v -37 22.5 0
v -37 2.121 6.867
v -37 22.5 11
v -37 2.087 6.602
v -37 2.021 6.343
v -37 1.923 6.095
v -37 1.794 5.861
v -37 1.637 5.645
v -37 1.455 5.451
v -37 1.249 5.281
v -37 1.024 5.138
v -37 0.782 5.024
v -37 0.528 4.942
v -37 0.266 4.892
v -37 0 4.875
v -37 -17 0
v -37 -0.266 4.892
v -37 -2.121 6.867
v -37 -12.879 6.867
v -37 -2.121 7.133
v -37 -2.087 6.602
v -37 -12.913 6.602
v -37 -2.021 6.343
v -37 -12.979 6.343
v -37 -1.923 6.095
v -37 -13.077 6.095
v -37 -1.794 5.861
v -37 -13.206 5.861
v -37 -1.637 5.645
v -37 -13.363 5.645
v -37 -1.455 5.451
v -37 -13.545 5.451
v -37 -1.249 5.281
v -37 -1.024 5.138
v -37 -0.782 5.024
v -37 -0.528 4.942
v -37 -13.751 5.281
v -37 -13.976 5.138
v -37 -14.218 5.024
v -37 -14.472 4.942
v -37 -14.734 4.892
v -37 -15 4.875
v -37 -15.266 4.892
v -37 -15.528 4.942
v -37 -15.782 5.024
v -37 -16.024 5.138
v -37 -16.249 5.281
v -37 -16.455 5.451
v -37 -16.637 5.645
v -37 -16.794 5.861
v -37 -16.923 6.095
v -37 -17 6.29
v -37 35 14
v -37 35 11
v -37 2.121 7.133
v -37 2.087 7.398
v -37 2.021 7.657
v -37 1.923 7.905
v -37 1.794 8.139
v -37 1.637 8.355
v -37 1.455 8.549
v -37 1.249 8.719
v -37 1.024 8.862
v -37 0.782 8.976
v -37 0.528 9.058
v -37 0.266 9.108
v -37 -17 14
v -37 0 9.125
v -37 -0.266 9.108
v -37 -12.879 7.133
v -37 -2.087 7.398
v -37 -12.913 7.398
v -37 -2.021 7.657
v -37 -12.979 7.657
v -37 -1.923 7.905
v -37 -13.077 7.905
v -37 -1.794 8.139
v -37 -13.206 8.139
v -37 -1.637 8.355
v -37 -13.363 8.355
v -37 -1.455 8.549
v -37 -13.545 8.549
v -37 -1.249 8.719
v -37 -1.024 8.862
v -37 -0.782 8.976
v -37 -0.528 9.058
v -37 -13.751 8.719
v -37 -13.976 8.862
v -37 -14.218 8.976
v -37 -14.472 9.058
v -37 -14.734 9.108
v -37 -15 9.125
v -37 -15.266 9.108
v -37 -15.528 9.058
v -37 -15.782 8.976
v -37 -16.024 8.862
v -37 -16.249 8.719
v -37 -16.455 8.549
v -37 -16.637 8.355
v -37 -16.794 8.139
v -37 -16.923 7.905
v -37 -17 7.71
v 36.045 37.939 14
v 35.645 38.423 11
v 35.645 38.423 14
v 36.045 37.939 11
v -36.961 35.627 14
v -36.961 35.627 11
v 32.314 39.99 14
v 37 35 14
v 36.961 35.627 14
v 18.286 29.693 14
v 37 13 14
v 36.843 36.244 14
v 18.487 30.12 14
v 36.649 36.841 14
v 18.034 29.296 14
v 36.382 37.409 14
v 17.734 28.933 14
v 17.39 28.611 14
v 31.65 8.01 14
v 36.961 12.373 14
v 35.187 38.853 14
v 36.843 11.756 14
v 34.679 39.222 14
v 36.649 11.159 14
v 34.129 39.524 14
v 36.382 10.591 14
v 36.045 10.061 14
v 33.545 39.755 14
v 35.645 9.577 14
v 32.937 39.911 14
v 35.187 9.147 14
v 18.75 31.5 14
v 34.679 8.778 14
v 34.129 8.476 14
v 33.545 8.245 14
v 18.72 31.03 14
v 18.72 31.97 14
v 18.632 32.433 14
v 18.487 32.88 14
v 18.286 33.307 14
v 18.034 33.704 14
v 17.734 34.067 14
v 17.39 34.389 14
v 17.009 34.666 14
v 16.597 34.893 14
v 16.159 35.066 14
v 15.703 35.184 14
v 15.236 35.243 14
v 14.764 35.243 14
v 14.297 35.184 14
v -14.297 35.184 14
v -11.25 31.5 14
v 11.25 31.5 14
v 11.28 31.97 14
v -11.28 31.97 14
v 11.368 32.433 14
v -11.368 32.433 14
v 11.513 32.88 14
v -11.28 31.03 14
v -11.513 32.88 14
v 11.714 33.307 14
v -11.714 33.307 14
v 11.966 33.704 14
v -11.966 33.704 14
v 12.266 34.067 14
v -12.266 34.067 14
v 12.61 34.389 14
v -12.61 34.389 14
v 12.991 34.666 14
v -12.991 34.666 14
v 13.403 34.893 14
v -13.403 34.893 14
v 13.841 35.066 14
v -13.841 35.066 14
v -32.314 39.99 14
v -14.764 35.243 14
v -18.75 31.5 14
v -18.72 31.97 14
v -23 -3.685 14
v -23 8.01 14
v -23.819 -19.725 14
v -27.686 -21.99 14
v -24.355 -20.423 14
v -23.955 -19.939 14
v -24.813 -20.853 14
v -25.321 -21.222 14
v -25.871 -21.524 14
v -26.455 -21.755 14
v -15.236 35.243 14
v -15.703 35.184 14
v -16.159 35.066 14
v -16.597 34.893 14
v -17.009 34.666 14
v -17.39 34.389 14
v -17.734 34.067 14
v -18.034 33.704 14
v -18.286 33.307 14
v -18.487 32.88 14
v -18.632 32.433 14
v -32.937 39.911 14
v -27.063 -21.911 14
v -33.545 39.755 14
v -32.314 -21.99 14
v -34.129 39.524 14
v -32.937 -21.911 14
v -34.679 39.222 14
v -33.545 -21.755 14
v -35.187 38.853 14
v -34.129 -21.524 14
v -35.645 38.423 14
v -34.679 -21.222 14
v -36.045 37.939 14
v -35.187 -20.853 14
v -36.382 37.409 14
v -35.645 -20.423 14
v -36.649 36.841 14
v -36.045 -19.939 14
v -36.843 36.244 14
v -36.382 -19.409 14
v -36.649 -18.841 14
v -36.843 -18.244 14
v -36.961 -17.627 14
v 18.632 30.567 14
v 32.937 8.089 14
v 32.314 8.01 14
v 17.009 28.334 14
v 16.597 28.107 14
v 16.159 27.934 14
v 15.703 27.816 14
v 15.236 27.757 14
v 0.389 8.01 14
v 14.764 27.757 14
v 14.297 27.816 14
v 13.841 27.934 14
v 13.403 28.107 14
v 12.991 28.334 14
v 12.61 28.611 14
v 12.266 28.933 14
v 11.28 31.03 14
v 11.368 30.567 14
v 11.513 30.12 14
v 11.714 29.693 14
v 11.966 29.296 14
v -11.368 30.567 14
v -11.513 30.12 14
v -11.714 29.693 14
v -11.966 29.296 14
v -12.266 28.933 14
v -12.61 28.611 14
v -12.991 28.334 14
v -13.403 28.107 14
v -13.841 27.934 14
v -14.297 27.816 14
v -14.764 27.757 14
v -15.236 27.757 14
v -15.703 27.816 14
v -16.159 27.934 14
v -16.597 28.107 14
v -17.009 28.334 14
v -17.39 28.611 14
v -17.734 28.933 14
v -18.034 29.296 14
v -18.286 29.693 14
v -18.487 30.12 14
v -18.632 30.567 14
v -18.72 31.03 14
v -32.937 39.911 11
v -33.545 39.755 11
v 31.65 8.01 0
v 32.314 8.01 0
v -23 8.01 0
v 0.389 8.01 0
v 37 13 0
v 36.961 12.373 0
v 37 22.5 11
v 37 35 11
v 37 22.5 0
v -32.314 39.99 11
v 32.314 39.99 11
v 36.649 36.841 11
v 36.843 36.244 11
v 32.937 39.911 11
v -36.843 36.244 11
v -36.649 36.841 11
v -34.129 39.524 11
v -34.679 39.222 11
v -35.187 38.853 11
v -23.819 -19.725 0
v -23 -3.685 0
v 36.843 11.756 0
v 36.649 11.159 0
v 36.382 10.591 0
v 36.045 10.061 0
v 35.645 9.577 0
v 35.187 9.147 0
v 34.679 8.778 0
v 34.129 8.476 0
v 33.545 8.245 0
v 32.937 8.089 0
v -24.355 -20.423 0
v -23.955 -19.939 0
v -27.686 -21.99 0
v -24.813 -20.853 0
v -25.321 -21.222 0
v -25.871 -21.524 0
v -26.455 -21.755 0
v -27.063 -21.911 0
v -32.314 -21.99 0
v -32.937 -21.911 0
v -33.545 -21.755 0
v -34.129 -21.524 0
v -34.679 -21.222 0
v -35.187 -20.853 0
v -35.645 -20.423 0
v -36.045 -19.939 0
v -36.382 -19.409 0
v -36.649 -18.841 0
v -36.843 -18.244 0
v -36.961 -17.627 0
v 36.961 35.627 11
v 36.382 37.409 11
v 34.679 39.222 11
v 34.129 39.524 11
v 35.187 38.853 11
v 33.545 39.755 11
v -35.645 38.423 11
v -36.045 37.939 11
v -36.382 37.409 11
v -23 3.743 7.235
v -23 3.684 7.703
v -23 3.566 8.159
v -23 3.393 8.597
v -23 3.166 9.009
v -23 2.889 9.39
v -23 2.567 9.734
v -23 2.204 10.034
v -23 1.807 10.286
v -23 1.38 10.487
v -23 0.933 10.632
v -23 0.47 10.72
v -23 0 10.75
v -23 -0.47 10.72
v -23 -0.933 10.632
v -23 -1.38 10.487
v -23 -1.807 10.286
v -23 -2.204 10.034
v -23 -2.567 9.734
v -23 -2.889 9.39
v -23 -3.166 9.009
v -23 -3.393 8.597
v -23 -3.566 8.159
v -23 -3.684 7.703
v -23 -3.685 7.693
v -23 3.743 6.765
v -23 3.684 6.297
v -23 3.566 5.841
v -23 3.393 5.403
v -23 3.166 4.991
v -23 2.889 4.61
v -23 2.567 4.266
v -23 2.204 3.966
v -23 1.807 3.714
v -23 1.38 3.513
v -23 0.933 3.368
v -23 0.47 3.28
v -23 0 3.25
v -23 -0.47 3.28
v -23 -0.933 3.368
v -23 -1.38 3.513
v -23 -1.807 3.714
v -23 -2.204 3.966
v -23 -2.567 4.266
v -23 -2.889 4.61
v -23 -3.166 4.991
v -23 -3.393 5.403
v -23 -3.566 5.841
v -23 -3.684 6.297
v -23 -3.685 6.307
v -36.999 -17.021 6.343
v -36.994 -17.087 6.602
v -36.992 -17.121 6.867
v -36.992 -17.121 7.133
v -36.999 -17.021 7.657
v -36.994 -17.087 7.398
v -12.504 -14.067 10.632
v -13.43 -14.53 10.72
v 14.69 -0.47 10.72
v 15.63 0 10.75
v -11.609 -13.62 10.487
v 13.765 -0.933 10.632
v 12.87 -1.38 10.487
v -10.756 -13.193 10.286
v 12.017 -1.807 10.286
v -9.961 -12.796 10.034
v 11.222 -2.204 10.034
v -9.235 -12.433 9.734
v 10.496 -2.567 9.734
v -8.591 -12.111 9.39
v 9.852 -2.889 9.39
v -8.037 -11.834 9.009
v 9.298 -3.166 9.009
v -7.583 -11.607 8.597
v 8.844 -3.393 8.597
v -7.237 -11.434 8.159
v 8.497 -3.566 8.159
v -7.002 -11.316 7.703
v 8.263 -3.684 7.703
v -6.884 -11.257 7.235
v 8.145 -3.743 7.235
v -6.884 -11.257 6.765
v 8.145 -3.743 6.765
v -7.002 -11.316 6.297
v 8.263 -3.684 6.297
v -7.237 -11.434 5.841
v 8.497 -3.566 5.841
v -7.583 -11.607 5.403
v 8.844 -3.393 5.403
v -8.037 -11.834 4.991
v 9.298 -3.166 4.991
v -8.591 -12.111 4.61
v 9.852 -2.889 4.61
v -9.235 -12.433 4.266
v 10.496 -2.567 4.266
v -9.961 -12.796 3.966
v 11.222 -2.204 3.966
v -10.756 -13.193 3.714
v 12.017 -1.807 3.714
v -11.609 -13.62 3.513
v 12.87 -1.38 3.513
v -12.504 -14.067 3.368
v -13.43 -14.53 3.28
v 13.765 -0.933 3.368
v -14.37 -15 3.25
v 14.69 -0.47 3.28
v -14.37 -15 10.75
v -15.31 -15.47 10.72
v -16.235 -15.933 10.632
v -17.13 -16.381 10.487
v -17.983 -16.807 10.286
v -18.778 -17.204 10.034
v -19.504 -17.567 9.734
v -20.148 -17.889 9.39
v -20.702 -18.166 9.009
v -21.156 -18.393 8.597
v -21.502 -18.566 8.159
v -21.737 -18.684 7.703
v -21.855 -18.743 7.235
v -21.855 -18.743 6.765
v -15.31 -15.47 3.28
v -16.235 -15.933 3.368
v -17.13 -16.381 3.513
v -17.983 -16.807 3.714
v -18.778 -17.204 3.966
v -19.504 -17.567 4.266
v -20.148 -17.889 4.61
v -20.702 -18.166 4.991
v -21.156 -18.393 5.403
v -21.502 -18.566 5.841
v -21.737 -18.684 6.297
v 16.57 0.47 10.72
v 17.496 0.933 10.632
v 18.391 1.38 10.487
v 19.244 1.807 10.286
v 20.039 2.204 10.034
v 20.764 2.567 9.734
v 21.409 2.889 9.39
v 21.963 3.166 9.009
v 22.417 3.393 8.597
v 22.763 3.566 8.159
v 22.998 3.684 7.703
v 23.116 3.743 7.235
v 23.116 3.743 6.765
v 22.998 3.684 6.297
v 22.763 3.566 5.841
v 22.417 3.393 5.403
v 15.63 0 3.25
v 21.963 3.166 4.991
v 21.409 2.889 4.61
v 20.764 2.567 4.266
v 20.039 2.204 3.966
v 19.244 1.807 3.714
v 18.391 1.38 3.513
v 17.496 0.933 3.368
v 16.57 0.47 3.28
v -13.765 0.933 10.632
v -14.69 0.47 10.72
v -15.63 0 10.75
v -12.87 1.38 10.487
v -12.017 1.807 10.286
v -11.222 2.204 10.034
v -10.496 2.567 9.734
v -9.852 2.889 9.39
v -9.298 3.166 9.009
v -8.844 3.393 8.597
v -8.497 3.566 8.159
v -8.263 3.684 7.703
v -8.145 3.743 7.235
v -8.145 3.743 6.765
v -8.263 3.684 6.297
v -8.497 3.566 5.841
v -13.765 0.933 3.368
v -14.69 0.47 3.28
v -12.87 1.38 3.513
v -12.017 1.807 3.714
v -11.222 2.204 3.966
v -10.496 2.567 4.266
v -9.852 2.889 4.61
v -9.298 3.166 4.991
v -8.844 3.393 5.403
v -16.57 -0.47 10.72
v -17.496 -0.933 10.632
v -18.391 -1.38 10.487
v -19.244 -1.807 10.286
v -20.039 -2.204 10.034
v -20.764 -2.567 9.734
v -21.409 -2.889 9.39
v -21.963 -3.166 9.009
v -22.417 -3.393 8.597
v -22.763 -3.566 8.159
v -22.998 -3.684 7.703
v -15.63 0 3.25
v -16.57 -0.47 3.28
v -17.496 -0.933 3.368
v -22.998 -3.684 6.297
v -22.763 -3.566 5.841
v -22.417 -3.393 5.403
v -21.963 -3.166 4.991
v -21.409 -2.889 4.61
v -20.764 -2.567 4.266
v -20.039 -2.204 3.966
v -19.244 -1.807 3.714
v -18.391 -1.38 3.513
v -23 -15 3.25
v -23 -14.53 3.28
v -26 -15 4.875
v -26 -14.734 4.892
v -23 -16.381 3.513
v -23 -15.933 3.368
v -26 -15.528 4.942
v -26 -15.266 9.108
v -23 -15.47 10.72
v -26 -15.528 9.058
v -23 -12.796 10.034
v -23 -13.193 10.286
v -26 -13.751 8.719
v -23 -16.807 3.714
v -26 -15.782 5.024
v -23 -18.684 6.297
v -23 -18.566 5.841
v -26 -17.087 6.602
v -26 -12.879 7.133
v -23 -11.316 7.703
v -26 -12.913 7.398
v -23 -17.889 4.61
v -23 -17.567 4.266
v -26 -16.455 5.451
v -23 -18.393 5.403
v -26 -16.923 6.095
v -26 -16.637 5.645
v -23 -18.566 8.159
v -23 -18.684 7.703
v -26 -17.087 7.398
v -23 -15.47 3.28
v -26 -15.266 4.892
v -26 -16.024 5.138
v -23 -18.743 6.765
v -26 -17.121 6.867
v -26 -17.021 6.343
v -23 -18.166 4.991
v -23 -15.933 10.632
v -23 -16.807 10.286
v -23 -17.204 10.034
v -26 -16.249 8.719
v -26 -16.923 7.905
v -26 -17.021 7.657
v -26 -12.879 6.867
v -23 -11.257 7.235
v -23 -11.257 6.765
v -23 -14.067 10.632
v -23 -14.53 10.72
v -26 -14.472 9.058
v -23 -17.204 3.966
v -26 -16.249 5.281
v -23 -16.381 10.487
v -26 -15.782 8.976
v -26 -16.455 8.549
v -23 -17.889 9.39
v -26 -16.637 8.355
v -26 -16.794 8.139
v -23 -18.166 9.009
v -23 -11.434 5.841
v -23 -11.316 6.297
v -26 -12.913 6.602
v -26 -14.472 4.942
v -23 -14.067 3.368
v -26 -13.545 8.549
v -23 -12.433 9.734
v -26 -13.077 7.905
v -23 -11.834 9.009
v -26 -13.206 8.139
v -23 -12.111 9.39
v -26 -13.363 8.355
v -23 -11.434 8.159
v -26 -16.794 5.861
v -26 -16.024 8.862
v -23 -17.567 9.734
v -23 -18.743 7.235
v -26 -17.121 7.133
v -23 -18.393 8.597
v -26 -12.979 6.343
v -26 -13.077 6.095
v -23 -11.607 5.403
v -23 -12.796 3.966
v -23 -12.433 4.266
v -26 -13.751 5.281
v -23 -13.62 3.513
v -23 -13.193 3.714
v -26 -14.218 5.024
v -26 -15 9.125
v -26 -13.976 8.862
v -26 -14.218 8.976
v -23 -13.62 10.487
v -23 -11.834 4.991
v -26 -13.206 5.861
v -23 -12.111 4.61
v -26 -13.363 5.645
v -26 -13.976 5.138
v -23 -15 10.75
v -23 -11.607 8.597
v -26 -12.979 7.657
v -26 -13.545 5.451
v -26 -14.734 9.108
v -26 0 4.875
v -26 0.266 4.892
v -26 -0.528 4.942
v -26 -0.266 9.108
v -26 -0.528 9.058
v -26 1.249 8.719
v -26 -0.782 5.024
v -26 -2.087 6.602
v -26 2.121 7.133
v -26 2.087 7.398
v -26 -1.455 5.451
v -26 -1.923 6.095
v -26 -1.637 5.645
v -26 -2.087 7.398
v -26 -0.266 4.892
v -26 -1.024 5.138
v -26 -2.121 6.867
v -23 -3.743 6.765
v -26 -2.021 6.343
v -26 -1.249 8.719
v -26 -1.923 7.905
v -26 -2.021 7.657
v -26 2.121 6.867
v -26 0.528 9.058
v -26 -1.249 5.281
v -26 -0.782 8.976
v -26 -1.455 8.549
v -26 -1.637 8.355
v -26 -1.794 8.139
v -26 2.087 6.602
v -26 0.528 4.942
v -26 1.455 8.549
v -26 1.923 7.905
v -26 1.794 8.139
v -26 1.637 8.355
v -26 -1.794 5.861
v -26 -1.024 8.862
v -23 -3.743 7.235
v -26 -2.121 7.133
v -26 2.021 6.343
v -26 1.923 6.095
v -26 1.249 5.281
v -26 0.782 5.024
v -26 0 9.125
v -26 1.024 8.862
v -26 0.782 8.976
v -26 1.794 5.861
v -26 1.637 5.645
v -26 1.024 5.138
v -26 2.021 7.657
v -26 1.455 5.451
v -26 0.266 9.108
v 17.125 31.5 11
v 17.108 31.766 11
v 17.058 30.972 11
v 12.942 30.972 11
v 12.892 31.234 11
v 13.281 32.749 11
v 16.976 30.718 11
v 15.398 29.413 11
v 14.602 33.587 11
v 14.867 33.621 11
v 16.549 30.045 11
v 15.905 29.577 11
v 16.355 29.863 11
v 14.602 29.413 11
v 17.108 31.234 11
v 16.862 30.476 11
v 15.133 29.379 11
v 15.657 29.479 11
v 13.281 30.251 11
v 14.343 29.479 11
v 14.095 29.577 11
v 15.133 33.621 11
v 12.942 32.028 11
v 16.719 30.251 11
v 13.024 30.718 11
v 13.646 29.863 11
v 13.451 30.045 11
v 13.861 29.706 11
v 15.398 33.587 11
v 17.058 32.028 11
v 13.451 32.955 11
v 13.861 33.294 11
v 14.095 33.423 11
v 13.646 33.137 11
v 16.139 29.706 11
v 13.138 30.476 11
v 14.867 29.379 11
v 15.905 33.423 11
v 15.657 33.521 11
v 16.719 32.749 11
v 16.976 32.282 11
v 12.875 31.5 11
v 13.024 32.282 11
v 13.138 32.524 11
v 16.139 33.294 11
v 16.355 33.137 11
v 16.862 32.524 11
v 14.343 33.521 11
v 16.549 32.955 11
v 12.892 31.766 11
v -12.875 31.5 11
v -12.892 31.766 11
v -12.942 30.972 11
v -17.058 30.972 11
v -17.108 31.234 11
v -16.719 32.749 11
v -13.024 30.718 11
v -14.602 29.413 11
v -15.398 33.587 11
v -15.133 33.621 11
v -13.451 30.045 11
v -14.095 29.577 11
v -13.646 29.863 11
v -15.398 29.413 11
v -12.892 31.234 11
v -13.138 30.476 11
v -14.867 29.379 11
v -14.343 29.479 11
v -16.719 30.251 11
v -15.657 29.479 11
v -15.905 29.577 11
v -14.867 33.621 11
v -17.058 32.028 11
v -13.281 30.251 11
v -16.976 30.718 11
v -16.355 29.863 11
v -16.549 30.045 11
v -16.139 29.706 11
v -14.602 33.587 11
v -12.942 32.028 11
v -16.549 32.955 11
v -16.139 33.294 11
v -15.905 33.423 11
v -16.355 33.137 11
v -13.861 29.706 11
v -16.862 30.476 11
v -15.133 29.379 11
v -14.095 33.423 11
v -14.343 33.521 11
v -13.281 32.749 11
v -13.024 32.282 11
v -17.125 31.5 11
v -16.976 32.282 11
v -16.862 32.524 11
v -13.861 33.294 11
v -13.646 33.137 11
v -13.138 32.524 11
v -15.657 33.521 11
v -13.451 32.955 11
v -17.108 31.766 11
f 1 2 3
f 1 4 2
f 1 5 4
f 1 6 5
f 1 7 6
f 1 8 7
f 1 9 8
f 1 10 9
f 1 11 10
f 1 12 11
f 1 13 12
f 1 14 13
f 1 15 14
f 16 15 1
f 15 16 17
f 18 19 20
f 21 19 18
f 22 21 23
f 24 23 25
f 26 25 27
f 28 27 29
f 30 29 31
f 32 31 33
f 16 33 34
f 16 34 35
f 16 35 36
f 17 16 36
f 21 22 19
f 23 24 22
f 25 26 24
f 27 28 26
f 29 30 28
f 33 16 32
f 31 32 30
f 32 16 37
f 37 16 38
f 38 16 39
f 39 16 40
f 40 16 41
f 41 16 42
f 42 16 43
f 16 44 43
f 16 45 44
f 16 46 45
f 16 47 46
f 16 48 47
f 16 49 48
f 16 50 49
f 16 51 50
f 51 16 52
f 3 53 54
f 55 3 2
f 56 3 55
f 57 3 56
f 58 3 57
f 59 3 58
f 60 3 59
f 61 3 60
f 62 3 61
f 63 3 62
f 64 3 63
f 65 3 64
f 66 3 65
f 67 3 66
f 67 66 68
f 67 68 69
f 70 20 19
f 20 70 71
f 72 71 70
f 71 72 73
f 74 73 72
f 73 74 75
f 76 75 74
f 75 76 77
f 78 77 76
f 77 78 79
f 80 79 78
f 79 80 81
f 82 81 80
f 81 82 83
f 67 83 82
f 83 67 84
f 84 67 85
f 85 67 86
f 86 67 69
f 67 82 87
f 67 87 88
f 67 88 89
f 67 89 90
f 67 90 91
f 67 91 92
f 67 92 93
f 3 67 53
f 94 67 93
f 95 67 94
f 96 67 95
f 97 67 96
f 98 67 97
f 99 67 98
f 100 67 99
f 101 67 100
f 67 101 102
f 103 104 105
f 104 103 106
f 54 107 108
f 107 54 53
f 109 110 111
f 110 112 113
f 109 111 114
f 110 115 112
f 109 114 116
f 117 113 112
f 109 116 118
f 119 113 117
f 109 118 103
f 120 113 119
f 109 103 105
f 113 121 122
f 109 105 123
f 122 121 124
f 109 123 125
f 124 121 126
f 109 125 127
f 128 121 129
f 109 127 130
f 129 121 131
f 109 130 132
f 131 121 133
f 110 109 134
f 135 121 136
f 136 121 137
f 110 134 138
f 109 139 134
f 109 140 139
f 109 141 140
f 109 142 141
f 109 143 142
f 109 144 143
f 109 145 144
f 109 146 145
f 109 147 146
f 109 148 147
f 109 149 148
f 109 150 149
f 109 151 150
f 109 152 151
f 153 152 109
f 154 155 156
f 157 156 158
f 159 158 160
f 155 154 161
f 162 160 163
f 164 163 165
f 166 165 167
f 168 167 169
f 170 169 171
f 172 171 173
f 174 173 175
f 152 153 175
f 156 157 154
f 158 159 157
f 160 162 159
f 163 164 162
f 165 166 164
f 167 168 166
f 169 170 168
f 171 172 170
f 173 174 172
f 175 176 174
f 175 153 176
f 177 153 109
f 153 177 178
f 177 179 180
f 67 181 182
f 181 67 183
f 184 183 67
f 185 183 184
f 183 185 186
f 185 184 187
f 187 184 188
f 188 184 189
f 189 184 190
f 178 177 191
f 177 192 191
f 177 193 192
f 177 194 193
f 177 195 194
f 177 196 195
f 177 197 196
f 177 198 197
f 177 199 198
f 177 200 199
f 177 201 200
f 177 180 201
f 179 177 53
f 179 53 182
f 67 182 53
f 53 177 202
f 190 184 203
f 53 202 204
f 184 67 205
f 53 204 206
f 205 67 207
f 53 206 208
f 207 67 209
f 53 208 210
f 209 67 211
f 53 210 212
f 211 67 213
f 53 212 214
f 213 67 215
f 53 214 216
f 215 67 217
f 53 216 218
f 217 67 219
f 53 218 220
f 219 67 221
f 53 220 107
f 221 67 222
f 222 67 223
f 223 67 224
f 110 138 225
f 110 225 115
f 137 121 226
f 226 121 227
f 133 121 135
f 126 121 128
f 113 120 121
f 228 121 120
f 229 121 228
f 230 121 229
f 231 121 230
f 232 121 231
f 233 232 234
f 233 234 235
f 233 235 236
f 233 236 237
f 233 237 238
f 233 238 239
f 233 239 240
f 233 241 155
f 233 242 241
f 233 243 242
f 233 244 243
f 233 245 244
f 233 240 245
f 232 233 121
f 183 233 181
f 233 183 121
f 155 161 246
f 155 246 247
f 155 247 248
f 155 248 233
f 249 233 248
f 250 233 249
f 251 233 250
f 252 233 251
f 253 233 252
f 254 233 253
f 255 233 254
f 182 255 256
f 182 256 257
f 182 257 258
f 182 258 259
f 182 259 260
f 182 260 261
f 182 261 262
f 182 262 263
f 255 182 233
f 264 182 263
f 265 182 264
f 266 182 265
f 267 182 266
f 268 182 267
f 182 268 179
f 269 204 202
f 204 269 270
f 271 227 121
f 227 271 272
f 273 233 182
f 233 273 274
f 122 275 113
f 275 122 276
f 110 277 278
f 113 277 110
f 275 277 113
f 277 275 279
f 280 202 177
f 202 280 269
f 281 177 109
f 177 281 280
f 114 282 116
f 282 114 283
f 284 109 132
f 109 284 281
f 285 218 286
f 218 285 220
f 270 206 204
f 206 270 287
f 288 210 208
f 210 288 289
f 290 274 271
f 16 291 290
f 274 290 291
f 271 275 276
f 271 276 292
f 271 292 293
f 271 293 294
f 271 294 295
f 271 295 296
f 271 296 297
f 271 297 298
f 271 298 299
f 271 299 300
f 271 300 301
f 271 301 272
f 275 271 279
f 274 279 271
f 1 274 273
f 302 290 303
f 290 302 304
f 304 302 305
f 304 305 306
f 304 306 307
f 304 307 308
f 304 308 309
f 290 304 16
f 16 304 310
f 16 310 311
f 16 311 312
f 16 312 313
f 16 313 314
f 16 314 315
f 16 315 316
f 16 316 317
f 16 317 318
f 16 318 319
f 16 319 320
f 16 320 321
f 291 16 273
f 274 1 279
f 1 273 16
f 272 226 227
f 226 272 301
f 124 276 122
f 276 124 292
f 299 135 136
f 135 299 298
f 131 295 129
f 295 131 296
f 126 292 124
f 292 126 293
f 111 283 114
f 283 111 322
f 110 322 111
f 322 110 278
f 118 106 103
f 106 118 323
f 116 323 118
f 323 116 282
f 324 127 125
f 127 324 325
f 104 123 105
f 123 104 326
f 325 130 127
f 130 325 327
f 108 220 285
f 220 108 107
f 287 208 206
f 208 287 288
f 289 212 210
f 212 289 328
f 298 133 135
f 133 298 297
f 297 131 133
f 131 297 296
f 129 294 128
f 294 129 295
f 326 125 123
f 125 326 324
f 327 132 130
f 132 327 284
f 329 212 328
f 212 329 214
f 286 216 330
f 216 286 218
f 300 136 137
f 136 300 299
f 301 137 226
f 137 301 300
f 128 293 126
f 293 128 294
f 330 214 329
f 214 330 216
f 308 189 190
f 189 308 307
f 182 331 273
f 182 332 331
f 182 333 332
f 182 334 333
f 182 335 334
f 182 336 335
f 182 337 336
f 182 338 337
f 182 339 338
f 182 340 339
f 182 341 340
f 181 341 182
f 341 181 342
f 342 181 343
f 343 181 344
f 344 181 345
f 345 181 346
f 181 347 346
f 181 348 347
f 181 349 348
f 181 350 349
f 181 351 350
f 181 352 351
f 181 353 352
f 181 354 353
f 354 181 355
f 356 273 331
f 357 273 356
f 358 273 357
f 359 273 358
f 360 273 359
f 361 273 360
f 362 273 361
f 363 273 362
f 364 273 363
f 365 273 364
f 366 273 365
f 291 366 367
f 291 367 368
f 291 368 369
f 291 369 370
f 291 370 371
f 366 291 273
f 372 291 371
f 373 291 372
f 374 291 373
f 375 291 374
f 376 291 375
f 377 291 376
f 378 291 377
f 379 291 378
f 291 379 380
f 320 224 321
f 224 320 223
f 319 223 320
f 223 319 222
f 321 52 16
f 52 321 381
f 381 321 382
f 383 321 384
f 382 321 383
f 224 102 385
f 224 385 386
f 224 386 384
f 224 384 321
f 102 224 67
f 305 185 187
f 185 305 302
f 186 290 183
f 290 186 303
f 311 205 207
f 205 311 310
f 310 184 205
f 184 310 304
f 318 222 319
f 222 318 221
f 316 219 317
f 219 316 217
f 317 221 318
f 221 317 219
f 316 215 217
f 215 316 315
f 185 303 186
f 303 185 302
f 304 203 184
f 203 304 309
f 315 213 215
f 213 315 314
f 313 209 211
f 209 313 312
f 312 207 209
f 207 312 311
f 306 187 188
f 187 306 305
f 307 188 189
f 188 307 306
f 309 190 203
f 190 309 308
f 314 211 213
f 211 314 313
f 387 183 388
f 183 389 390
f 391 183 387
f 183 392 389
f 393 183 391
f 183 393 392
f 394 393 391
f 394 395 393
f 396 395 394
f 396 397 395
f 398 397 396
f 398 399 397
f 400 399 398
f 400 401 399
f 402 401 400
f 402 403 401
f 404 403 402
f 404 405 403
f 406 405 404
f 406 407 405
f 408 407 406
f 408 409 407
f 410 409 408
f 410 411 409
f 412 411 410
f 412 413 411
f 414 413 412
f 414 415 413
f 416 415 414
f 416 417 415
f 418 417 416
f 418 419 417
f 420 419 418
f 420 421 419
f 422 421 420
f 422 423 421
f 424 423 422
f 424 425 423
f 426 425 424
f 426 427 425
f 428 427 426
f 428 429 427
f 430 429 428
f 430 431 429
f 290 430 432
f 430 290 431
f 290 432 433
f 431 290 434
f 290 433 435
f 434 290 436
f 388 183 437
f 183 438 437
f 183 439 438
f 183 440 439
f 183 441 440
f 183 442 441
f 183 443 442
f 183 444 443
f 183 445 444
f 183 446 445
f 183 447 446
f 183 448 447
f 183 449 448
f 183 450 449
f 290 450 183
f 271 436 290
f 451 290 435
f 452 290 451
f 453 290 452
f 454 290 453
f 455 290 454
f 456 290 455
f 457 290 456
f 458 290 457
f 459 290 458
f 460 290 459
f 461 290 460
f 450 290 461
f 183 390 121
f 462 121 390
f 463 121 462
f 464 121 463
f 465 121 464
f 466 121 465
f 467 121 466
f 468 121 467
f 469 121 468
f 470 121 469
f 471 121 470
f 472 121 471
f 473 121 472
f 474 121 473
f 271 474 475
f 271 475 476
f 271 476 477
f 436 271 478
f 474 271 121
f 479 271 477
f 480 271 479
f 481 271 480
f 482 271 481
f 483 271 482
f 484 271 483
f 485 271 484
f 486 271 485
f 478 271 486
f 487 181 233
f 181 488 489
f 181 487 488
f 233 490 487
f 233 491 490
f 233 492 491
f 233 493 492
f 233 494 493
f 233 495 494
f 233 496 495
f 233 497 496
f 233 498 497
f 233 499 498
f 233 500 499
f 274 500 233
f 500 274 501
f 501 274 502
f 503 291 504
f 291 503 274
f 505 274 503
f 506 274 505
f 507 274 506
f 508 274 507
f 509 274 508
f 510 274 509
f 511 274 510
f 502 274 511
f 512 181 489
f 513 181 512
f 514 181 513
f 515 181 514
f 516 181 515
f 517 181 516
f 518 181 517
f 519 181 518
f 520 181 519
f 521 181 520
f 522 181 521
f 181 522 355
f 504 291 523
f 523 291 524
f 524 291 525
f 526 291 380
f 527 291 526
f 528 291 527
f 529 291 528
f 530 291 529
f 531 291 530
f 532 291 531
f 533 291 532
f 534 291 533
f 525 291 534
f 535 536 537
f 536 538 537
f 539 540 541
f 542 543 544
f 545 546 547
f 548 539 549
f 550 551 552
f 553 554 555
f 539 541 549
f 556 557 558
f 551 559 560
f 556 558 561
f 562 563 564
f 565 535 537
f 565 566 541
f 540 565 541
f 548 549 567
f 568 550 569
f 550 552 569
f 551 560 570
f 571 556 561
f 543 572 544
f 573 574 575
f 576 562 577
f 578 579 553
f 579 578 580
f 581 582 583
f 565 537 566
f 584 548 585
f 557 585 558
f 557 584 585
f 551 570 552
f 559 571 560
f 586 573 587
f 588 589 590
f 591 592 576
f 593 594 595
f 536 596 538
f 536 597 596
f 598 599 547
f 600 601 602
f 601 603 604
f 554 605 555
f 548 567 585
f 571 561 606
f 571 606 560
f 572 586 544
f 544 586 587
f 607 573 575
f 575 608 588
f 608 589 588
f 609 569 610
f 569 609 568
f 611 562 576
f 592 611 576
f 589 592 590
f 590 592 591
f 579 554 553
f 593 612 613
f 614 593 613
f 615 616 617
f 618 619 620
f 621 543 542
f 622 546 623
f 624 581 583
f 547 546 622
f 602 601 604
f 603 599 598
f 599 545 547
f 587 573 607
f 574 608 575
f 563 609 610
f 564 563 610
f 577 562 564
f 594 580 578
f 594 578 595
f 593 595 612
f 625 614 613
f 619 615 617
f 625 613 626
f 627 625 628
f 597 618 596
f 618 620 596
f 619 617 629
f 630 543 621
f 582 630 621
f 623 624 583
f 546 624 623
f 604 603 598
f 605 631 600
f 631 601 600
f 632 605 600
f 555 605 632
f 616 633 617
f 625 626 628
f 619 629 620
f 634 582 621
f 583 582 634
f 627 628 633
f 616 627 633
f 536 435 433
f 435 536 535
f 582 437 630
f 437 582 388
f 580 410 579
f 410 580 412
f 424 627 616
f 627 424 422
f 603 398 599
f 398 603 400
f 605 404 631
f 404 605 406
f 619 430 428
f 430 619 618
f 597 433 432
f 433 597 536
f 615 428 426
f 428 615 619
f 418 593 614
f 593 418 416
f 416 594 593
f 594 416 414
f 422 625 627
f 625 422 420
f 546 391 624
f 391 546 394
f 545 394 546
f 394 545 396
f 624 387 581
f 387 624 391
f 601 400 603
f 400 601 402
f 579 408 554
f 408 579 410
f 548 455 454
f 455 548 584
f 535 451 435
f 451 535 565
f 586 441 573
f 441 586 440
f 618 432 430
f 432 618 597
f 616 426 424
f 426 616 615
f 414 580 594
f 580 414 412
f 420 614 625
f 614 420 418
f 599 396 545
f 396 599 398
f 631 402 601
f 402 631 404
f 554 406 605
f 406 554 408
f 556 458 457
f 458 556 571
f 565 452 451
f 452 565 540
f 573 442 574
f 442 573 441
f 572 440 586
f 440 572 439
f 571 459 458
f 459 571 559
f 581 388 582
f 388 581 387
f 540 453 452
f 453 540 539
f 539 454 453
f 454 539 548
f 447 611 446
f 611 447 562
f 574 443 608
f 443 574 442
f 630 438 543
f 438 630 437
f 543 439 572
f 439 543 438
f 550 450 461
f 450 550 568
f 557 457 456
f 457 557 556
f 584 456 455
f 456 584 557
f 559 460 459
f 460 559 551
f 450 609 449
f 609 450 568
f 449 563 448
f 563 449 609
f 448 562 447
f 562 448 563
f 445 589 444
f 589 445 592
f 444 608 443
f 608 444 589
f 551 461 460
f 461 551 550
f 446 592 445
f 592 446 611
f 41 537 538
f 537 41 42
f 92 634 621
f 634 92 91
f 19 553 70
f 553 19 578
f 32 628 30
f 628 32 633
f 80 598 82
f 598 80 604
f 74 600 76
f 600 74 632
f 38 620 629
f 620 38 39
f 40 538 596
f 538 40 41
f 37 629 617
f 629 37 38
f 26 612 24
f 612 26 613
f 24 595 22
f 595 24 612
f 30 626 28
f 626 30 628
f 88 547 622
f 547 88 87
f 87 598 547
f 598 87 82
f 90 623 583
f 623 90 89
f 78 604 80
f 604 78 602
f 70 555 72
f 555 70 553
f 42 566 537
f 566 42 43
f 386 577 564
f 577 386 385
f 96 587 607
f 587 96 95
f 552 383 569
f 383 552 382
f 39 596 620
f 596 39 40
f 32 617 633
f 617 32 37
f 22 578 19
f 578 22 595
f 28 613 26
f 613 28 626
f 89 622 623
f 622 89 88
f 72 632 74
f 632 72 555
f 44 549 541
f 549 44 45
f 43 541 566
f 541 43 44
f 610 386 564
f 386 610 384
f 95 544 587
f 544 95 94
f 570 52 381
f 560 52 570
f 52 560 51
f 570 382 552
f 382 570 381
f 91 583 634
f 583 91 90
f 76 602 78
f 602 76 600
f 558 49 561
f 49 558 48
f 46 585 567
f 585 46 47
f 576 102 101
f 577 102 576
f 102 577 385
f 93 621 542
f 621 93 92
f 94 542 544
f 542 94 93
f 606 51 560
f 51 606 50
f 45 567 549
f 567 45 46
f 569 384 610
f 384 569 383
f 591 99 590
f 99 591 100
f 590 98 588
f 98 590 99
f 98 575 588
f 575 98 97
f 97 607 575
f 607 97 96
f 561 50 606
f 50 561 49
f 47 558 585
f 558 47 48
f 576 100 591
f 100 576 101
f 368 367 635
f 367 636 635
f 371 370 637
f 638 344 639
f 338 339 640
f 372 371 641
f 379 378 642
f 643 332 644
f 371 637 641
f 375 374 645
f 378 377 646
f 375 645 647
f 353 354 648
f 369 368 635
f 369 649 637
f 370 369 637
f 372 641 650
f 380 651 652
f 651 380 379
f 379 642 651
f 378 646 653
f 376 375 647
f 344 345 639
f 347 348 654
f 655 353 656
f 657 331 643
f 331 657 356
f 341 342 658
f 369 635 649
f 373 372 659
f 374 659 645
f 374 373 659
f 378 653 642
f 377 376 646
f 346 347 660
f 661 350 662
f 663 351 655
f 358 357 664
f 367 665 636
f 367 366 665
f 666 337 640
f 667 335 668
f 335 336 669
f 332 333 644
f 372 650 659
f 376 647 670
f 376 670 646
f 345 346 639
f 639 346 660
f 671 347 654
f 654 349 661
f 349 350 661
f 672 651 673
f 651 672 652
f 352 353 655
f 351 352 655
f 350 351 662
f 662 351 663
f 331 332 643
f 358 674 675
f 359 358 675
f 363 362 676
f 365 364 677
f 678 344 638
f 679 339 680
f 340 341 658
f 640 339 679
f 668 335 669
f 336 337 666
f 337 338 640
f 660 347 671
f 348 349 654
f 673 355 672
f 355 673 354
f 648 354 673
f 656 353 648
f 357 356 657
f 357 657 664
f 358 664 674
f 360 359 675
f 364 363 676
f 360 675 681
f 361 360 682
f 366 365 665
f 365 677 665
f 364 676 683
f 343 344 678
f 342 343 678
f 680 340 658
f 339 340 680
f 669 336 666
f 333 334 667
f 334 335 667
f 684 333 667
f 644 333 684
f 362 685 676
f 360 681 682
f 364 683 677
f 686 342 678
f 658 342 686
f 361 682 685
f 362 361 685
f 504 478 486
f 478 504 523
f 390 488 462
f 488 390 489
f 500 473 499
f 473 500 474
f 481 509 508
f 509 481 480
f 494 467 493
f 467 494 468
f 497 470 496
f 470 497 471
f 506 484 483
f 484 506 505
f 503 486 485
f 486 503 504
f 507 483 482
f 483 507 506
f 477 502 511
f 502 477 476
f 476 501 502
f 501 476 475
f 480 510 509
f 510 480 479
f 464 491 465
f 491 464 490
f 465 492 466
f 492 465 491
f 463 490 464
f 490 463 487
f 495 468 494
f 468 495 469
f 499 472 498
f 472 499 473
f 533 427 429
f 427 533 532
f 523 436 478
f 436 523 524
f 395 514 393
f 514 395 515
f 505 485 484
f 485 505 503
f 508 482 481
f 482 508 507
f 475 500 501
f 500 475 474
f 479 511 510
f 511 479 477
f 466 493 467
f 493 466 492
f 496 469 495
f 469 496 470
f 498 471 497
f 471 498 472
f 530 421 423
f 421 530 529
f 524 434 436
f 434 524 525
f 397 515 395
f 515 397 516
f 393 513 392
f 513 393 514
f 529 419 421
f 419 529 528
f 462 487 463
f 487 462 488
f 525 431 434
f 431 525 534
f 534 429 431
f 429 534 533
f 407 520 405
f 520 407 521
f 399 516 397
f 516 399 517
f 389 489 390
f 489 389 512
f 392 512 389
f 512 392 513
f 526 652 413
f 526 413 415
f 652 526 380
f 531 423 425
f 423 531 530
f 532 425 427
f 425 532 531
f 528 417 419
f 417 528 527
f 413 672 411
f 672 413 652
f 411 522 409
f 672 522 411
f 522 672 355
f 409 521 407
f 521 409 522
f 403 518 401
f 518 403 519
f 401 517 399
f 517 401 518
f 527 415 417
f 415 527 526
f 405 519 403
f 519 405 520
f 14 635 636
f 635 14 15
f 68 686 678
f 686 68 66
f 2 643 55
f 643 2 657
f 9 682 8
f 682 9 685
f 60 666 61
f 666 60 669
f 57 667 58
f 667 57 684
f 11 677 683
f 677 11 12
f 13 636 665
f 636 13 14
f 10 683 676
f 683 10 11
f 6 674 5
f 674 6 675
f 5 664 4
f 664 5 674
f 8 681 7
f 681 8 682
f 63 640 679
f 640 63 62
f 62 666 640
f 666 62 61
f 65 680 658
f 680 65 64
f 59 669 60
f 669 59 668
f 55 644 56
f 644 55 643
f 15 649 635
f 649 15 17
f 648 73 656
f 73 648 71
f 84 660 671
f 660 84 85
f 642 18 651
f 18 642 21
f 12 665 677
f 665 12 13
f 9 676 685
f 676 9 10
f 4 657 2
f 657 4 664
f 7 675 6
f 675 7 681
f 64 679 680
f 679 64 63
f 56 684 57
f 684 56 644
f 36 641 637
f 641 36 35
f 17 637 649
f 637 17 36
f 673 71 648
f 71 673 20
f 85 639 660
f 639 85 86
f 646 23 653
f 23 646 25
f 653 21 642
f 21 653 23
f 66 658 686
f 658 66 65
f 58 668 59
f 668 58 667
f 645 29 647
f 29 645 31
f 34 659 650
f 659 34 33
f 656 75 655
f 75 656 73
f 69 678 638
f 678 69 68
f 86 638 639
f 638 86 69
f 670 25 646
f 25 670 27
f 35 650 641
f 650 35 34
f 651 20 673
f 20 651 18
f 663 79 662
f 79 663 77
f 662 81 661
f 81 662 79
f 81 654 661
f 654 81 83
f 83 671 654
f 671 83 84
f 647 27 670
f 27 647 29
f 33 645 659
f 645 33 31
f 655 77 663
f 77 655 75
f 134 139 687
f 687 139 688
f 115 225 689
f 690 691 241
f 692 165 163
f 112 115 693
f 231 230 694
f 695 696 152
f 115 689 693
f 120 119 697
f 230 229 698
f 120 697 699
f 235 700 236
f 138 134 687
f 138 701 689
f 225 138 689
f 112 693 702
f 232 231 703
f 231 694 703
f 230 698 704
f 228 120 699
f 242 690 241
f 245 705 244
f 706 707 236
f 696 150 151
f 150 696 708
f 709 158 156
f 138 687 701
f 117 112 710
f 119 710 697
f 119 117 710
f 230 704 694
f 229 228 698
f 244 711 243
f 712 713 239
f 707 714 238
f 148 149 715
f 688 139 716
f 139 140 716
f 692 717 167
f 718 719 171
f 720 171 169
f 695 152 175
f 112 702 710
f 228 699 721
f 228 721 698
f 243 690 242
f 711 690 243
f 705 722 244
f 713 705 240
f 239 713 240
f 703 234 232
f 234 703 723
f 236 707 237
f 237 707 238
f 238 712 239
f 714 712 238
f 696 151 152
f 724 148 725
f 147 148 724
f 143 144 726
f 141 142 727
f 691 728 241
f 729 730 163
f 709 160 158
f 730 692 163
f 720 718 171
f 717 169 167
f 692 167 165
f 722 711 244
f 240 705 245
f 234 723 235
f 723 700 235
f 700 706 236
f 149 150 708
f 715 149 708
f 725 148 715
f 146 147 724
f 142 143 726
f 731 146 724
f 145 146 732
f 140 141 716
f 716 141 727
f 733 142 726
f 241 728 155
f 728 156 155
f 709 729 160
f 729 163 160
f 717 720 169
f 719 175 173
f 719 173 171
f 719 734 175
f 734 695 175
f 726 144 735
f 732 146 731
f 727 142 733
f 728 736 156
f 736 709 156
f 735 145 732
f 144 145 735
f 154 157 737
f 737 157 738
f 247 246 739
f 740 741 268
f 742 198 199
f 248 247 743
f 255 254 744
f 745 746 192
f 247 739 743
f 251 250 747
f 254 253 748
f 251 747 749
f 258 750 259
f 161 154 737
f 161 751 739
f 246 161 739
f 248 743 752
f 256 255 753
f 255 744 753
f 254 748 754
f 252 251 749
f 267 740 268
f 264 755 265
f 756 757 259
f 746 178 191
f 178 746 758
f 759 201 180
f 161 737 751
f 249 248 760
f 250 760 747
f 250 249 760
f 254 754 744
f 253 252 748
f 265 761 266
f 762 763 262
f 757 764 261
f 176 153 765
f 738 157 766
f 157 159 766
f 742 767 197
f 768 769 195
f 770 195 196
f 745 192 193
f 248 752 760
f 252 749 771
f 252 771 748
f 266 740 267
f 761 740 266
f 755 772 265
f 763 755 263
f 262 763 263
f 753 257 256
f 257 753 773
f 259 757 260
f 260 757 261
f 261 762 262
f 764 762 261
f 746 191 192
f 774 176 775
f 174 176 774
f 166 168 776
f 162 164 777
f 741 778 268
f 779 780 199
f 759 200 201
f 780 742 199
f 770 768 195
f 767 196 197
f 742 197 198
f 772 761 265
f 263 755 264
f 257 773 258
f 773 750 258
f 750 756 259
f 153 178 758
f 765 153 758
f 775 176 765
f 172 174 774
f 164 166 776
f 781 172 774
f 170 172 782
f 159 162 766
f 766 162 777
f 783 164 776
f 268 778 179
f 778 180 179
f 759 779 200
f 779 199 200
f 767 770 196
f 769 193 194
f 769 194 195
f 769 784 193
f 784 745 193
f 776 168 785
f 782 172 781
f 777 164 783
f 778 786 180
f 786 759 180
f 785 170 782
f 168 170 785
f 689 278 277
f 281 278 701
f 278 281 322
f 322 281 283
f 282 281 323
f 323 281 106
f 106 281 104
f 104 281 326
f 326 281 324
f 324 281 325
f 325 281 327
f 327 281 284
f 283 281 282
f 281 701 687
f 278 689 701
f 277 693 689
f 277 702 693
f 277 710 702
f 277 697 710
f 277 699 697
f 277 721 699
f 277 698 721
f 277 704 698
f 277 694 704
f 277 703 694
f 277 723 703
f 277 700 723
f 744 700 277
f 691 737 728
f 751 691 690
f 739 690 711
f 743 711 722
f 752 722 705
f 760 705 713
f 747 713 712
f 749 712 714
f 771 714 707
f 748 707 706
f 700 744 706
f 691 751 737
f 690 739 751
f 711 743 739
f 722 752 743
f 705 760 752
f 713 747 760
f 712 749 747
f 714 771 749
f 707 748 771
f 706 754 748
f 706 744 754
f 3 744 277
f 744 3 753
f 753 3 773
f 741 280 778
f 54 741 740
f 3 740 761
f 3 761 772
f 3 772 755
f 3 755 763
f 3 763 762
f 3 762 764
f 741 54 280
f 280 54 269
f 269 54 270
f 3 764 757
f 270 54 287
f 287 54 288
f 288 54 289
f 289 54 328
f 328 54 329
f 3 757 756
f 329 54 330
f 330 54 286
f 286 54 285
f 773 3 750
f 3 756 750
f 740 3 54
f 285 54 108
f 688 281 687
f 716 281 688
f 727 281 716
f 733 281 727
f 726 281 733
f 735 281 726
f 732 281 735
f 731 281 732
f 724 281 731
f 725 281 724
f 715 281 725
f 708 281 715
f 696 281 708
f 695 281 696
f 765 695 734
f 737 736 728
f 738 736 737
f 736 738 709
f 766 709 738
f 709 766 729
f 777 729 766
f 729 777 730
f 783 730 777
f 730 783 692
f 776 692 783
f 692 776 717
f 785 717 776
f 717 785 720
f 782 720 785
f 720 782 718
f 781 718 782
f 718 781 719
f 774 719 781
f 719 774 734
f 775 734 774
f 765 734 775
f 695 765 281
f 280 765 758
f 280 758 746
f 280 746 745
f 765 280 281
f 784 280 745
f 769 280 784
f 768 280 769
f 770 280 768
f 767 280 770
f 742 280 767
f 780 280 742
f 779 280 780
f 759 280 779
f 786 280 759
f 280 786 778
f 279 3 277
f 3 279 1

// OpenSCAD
$fn = 50;


difference() {
	union() {
		translate(v = [0, 24.0000000000, 0]) {
			hull() {
				translate(v = [-32.0000000000, 11.0000000000, 0]) {
					cylinder(h = 14, r = 5);
				}
				translate(v = [32.0000000000, 11.0000000000, 0]) {
					cylinder(h = 14, r = 5);
				}
				translate(v = [-32.0000000000, -11.0000000000, 0]) {
					cylinder(h = 14, r = 5);
				}
				translate(v = [32.0000000000, -11.0000000000, 0]) {
					cylinder(h = 14, r = 5);
				}
			}
		}
		translate(v = [-30.0000000000, 0, 0]) {
			hull() {
				translate(v = [-2.0000000000, 17.0000000000, 0]) {
					cylinder(h = 14, r = 5);
				}
				translate(v = [2.0000000000, 17.0000000000, 0]) {
					cylinder(h = 14, r = 5);
				}
				translate(v = [-2.0000000000, -17.0000000000, 0]) {
					cylinder(h = 14, r = 5);
				}
				translate(v = [2.0000000000, -17.0000000000, 0]) {
					cylinder(h = 14, r = 5);
				}
			}
		}
		rotate(a = [0, 0, 26.5650511771]) {
			hull() {
				translate(v = [-33.0410196625, 2.0000000000, 0]) {
					cylinder(h = 14, r = 5);
				}
				translate(v = [33.0410196625, 2.0000000000, 0]) {
					cylinder(h = 14, r = 5);
				}
				translate(v = [-33.0410196625, -2.0000000000, 0]) {
					cylinder(h = 14, r = 5);
				}
				translate(v = [33.0410196625, -2.0000000000, 0]) {
					cylinder(h = 14, r = 5);
				}
			}
		}
	}
	union() {
		translate(v = [-23.0000000000, -15.0000000000, 7.0000000000]) {
			rotate(a = [0, 90, 0]) {
				difference() {
					union() {
						#translate(v = [0, 0, -14.0000000000]) {
							cylinder(h = 14, r = 2.0000000000);
						}
						#translate(v = [0, 0, -3]) {
							cylinder(h = 3, r1 = 2.1250000000, r2 = 3.7500000000);
						}
						#cylinder(h = 250, r = 3.7500000000);
						#translate(v = [0, 0, -14.0000000000]) {
							cylinder(h = 14, r = 2.1250000000);
						}
						#translate(v = [0, 0, -14.0000000000]) {
							cylinder(h = 14, r = 2.0000000000);
						}
					}
					union();
				}
			}
		}
		translate(v = [-23.0000000000, 0.0000000000, 7.0000000000]) {
			rotate(a = [0, 90, 0]) {
				difference() {
					union() {
						#translate(v = [0, 0, -14.0000000000]) {
							cylinder(h = 14, r = 2.0000000000);
						}
						#translate(v = [0, 0, -3]) {
							cylinder(h = 3, r1 = 2.1250000000, r2 = 3.7500000000);
						}
						#cylinder(h = 250, r = 3.7500000000);
						#translate(v = [0, 0, -14.0000000000]) {
							cylinder(h = 14, r = 2.1250000000);
						}
						#translate(v = [0, 0, -14.0000000000]) {
							cylinder(h = 14, r = 2.0000000000);
						}
					}
					union();
				}
			}
		}
		translate(v = [15.0000000000, 31.5000000000, 14.0000000000]) {
			rotate(a = [0, 0, 0]) {
				difference() {
					union() {
						#translate(v = [0, 0, -14.0000000000]) {
							cylinder(h = 14, r = 2.0000000000);
						}
						#translate(v = [0, 0, -3]) {
							cylinder(h = 3, r1 = 2.1250000000, r2 = 3.7500000000);
						}
						#cylinder(h = 250, r = 3.7500000000);
						#translate(v = [0, 0, -14.0000000000]) {
							cylinder(h = 14, r = 2.1250000000);
						}
						#translate(v = [0, 0, -14.0000000000]) {
							cylinder(h = 14, r = 2.0000000000);
						}
					}
					union();
				}
			}
		}
		translate(v = [-15.0000000000, 31.5000000000, 14.0000000000]) {
			rotate(a = [0, 0, 0]) {
				difference() {
					union() {
						#translate(v = [0, 0, -14.0000000000]) {
							cylinder(h = 14, r = 2.0000000000);
						}
						#translate(v = [0, 0, -3]) {
							cylinder(h = 3, r1 = 2.1250000000, r2 = 3.7500000000);
						}
						#cylinder(h = 250, r = 3.7500000000);
						#translate(v = [0, 0, -14.0000000000]) {
							cylinder(h = 14, r = 2.1250000000);
						}
						#translate(v = [0, 0, -14.0000000000]) {
							cylinder(h = 14, r = 2.0000000000);
						}
					}
					union();
				}
			}
		}
		translate(v = [-37.0000000000, 22.5000000000, 0]) {
			cube(size = [74, 18, 11]);
		}
	}
}
